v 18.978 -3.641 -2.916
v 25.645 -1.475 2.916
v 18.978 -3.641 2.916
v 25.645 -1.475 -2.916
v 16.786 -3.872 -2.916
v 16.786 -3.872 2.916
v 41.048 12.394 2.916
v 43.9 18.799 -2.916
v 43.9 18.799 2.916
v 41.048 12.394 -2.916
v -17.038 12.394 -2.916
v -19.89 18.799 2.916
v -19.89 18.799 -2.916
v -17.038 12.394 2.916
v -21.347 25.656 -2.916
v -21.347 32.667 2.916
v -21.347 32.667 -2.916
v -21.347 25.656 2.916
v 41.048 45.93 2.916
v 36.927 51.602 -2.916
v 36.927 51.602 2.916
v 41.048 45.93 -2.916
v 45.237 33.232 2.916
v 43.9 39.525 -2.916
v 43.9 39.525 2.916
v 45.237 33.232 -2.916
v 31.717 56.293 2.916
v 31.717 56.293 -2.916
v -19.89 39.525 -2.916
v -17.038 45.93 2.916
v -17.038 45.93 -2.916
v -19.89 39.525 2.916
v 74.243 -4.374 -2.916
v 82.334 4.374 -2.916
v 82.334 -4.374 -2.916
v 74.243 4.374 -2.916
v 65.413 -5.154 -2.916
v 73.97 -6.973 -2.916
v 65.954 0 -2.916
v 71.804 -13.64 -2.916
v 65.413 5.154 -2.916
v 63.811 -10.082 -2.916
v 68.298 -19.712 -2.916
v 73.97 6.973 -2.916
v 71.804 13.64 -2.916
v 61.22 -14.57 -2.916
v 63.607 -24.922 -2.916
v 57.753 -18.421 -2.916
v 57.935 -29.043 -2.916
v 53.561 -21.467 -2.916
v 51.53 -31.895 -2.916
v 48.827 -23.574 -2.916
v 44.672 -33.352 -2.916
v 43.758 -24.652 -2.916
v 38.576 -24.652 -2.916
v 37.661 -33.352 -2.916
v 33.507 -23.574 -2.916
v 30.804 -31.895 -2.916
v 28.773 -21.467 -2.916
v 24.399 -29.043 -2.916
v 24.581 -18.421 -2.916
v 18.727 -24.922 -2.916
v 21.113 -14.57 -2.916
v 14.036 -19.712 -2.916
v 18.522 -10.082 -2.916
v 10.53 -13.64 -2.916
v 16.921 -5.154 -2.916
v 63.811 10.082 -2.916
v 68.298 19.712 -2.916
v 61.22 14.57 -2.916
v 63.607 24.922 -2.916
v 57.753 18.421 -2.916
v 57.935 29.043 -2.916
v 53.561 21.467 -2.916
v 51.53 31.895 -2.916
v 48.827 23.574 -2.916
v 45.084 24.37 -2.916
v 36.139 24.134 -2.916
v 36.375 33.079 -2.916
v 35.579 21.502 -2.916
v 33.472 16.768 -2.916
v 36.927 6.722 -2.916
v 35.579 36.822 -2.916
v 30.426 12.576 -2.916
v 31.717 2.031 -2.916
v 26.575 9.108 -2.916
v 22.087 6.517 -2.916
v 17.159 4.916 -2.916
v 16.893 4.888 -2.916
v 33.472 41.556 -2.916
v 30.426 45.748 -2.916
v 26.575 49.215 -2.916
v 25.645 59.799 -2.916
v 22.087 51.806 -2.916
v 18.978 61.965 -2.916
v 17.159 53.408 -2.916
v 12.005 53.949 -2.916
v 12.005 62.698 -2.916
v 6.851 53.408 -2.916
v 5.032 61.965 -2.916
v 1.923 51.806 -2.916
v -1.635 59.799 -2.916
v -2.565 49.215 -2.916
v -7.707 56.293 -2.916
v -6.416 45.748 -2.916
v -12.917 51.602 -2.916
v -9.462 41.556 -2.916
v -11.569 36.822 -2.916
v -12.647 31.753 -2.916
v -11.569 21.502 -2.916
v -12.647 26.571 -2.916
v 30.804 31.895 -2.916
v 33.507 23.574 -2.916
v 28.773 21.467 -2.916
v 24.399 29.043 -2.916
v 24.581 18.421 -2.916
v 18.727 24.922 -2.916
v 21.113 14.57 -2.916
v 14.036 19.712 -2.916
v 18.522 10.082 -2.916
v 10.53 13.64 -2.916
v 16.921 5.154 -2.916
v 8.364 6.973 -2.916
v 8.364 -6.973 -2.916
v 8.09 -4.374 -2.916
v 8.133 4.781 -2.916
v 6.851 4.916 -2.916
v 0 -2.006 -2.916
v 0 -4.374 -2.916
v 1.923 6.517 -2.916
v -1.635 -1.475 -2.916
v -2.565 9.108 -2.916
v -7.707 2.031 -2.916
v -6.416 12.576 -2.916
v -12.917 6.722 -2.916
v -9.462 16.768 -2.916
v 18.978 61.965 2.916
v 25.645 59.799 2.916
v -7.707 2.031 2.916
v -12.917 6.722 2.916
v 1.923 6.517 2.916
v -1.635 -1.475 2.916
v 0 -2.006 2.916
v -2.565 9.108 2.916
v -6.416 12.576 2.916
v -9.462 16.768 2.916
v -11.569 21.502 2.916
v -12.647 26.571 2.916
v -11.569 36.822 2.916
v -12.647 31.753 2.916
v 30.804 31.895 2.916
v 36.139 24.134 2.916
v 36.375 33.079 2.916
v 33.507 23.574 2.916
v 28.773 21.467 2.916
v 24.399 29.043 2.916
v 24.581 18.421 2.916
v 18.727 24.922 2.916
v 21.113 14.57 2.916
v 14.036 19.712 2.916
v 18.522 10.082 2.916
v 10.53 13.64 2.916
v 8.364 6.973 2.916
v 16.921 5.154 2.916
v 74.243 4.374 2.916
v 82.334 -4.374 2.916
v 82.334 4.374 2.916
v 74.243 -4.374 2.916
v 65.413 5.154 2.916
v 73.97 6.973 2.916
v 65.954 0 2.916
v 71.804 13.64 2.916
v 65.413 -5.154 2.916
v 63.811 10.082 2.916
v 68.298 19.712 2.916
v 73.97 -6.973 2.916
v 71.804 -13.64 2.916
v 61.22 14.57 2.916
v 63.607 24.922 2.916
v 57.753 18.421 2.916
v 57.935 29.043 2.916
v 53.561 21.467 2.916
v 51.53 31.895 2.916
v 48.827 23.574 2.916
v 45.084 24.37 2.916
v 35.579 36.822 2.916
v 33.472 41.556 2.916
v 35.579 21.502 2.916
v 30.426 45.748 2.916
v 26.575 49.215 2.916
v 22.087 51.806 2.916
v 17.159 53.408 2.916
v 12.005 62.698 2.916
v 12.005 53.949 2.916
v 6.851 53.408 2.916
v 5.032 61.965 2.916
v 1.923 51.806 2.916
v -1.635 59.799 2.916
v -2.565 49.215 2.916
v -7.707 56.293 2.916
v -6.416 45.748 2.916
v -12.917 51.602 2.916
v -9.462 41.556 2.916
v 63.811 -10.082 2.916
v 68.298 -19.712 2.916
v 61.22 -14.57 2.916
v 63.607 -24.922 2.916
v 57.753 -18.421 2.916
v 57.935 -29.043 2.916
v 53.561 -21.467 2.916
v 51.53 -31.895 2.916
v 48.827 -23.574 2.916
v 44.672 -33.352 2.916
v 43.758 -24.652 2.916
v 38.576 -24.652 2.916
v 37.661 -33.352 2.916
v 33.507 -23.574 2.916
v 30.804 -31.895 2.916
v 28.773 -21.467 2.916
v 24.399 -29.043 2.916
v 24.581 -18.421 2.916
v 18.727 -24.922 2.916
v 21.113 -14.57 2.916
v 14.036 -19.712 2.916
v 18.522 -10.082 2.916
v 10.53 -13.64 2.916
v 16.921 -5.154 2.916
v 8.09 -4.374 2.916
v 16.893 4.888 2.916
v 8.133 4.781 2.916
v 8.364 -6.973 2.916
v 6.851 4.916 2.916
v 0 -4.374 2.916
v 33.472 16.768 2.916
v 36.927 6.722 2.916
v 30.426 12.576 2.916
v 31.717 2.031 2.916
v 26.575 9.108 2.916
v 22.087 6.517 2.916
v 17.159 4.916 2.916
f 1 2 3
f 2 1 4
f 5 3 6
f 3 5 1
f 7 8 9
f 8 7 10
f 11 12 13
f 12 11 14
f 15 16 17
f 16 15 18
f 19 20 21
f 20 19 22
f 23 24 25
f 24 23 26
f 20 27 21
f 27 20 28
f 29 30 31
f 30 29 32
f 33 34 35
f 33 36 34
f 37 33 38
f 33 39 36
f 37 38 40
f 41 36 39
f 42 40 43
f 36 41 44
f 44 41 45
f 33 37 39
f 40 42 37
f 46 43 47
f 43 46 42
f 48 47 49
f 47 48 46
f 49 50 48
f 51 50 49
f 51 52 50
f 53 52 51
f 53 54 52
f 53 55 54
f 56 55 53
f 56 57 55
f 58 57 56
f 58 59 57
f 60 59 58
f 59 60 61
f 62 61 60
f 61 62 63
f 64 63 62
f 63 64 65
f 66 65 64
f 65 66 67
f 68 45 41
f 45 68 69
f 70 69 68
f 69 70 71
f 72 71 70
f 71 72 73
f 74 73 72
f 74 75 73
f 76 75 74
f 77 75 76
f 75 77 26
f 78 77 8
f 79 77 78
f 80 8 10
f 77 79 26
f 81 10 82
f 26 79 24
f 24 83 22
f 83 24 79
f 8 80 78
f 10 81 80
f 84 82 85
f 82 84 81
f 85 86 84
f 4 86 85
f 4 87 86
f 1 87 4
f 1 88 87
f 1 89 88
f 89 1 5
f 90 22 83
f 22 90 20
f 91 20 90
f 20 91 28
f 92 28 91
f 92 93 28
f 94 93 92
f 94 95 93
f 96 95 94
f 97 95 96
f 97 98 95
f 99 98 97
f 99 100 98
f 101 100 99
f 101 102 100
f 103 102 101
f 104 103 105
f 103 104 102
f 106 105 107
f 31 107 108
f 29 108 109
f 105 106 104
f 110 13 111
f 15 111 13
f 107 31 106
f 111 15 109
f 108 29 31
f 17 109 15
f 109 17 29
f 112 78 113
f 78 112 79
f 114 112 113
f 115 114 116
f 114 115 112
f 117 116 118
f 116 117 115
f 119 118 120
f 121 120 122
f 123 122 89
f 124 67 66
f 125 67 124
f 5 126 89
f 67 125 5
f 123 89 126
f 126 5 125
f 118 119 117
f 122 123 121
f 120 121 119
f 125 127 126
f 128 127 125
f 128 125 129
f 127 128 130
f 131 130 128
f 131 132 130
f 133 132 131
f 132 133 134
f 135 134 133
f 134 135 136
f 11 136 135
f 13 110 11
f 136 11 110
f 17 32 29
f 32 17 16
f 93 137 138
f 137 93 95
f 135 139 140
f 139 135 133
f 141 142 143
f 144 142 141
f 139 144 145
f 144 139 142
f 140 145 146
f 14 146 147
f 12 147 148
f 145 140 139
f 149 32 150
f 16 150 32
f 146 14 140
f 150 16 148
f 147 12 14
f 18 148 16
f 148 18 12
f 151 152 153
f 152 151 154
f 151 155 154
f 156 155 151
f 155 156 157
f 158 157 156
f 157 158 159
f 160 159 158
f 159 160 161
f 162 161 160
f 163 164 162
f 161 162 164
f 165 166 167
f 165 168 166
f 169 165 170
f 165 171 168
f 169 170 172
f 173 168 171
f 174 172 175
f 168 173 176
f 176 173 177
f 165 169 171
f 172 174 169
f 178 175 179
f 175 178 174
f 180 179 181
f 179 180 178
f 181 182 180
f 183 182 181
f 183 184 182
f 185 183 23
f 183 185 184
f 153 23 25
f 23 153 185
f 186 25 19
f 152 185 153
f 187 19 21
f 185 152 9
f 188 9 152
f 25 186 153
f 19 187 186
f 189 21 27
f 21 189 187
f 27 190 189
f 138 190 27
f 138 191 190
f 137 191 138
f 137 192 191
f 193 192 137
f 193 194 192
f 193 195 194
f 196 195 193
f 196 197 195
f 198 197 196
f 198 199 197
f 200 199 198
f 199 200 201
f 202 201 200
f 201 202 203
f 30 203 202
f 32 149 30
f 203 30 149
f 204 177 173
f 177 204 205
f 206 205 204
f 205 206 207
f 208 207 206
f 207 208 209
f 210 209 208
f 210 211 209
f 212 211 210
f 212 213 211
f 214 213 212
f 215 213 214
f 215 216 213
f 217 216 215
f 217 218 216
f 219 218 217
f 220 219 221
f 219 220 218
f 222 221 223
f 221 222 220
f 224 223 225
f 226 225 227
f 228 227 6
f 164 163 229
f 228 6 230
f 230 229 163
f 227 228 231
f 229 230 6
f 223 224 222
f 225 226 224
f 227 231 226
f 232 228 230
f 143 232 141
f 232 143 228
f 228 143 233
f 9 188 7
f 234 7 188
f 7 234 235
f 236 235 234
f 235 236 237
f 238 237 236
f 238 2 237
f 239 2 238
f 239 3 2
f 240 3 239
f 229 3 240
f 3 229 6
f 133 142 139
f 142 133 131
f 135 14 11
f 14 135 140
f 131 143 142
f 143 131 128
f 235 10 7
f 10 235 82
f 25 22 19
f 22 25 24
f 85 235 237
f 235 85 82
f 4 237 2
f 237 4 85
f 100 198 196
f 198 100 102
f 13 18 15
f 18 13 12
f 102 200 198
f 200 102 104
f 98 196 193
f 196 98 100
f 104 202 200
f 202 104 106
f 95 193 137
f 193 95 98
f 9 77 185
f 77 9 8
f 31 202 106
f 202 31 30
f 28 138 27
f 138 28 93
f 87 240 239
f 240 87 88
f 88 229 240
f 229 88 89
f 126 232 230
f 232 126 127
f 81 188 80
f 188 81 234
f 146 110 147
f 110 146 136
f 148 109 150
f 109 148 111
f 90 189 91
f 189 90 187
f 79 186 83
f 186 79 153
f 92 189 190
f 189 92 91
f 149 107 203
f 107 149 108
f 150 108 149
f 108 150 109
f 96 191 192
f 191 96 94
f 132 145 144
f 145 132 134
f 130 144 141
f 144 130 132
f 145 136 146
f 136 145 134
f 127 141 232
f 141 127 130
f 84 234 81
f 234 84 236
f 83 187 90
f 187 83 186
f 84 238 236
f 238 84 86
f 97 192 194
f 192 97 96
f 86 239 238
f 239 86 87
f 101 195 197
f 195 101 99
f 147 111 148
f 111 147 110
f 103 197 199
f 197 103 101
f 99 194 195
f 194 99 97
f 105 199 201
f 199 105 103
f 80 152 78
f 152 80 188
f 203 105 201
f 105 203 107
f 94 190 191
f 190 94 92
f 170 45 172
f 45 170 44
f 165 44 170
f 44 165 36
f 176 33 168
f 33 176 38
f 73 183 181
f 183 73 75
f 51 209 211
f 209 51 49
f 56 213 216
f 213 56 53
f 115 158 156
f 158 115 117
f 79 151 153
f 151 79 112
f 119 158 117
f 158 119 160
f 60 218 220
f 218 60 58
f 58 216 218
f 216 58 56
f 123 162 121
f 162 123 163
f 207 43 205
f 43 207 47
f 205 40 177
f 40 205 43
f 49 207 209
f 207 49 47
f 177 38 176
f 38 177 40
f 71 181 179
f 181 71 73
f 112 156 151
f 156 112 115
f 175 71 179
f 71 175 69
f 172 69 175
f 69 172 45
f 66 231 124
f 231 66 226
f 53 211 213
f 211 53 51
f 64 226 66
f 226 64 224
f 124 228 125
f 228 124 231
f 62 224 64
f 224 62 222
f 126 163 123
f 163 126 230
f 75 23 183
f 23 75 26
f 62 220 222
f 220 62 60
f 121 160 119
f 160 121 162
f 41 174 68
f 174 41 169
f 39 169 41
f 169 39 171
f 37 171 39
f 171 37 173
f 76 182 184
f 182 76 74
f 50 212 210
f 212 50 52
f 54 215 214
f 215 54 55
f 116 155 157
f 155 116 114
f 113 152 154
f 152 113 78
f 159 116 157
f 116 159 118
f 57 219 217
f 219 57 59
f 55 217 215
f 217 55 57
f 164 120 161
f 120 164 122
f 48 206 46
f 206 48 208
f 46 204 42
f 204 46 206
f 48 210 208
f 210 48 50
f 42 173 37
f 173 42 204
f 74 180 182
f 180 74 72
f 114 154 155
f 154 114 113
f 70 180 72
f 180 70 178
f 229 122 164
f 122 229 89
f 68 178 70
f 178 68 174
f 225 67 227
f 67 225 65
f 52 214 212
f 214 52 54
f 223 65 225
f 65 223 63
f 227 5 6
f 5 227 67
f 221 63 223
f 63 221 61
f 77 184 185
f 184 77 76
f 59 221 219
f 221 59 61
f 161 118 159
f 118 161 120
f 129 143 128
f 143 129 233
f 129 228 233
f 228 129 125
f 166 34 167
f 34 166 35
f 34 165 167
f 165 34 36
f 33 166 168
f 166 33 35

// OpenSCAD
/* doodle-meta {"version":1,"parameters":{"width":{"label":"Overall width","description":"Changes the overall width of the handle","unit":"mm","feature":"body_width"},"thickness":{"label":"Thickness","description":"Changes the thickness of the handle (height in Z)","unit":"mm","feature":"body_thickness"},"radius":{"label":"Bend radius","description":"Changes the radius of the curved sections","unit":"mm","feature":"bend_radius"},"straight_len":{"label":"Straight length","description":"Changes the length of the straight segments","unit":"mm","feature":"straight_length"}},"features":{"body_width":{"kind":"dimension","axis":"x","label":"Overall width"},"body_thickness":{"kind":"dimension","axis":"z","label":"Thickness"},"bend_radius":{"kind":"region","label":"Bend radius","min":[{"parameter":"width","scale":0.5,"offset":0},{"parameter":"radius","scale":-1,"offset":0},0],"max":[{"parameter":"width","scale":0.5,"offset":0},{"parameter":"radius","scale":1,"offset":0},{"parameter":"thickness","scale":1,"offset":0}]},"straight_length":{"kind":"region","label":"Straight length","min":[0,{"parameter":"radius","scale":-1,"offset":0},0],"max":[{"parameter":"straight_len","scale":1,"offset":0},{"parameter":"radius","scale":1,"offset":0},{"parameter":"thickness","scale":1,"offset":0}]}}} */

// Parameters
width = 82.3336654124505;
thickness = 3.29334661649802;
radius = 20.0;
straight_len = 8.233366541245049;

// Derived parameters
// The path consists of: straight, arc1, arc2, straight.
// Total length along path = 2*straight_len + 2*(PI*radius/2) = 20 + 20*PI ~ 82.8
// The bounding box width is determined by the geometry.
// Based on the spec: "End centre offset: X=40, Y=60" was inconsistent, but "R20 arcs + 10mm straights" is authoritative.
// Let's construct the path in the XY plane.
// Start at (0,0).
// 1. Straight along X: (0,0) to (10,0).
// 2. Arc 1 (90 deg, R20): Center at (10, 20). Starts at (10,0), ends at (30, 20).
// 3. Arc 2 (90 deg, R20, opposite): Center at (30, 0). Starts at (30, 20), ends at (50, 0).
// 4. Straight along X: (50,0) to (60,0).
// Total X span = 60. Total Y span = 20.
// The spec says max_width 100. The measured width is 100.
// If the calculated width is 60, we might need to scale or adjust.
// However, the prompt says "derived_sizes ... width_mm: 100.0".
// And "authoritative_max_dimension_mm": "100".
// If I build it with R=20 and L=10, width is 60.
// To match width 100, I should scale the whole thing or adjust parameters.
// But the parameters are user-editable.
// Let's assume the "width" parameter controls the overall extent.
// If I set radius=20 and straight_len=10, width=60.
// To get width=100, I can scale the geometry.
// Or, I can interpret "width" as the parameter that scales the whole assembly.
// Let's use a scale factor.
// Target width = 100. Calculated width = 2*straight_len + 2*radius = 20 + 40 = 60.
// Scale factor = width / (2*straight_len + 2*radius).

scale_factor = width / (2 * straight_len + 2 * radius);

// Module to create the swept handle
module handle_body() {
    // We will build the path segments and union them.
    // Since OpenSCAD doesn't have a native sweep, we approximate by stacking rotated/translated boxes.
    // Or better, use rotate_extrude for arcs and cubes for straights, then union.
    
    // Path definition in XY plane:
    // Segment 1: Straight from (0,0) to (straight_len, 0)
    // Segment 2: Arc from (straight_len, 0) to (straight_len+radius, radius)
    //   Center: (straight_len, radius)
    // Segment 3: Arc from (straight_len+radius, radius) to (straight_len+2*radius, 0)
    //   Center: (straight_len+radius, 0)
    // Segment 4: Straight from (straight_len+2*radius, 0) to (straight_len+2*radius+straight_len, 0)
    
    // Cross section: 6mm wide (Y) x 4mm thick (Z).
    // Wait, the spec says "6mm wide (in path plane) and 4mm thick (normal to path plane)".
    // In the front view (XZ), we see the path. The "width" of the handle in the path plane (XY) is 6mm?
    // No, "rectangular cross-section, 6mm wide (in path plane) and 4mm thick (normal to path plane)".
    // Path plane is XY. So the dimension in XY is 6mm. The dimension in Z is 4mm.
    // So the cross section is 6mm (Y-direction relative to path tangent) x 4mm (Z-direction).
    
    // Let's define the cross-section as a rectangle centered on the path.
    // Width in Y (perpendicular to path in XY plane) = 6.
    // Height in Z = 4.
    
    // We will construct the solid by unioning:
    // 1. Two straight bars.
    // 2. Two curved bars (quarter toruses).
    
    // Helper for a straight bar along X
    module straight_bar(len, w, h) {
        // Centered in Y and Z
        translate([0, -w/2, -h/2])
            cube([len, w, h]);
    }
    
    // Helper for a quarter arc bar
    // Arc from angle 0 to 90, centered at (0,0) in local XY.
    // Path is in XY. Cross section is Y (width) x Z (height).
    // We can use rotate_extrude? No, rotate_extrude rotates around Z.
    // We need a torus segment.
    // A torus with major radius R and minor radius r? No, rectangular section.
    // We can approximate the arc with many small cubes, or use a difference of cylinders.
    // Difference of two cylinders (outer R+w/2, inner R-w/2) cut by a wedge?
    // Yes.
    // Outer cylinder radius: R + w/2
    // Inner cylinder radius: R - w/2
    // Height: h
    // Angle: 90 degrees.
    
    module arc_bar(R, w, h, angle_deg) {
        // Create a ring segment
        // Outer cylinder
        difference() {
            cylinder(h=h, r=R + w/2, center=true);
            cylinder(h=h+2, r=R - w/2, center=true);
        }
        // Cut to angle
        // We need to keep only the 0-90 degree sector.
        // Intersection with a cube or wedge.
        // Let's use intersection with a cube that covers the first quadrant.
        // But the arc is centered at (0,0).
        // The material is between R-w/2 and R+w/2.
        // We want the part where x>0 and y>0.
        intersection() {
            difference() {
                cylinder(h=h, r=R + w/2, center=true);
                cylinder(h=h+2, r=R - w/2, center=true);
            }
            // Keep first quadrant
            translate([0,0,-h/2-1])
                cube([R+w, R+w, h+2]);
        }
    }
    
    // Now assemble the path
    // The path is in XY. Z is thickness.
    // We need to position these pieces.
    
    // 1. First straight: (0,0) to (straight_len, 0)
    // Center of bar is at y=0, z=0.
    // translate([0,0,0]) straight_bar(straight_len, 6, 4);
    
    // 2. First arc: Center at (straight_len, radius).
    // Starts at (straight_len, 0) which is angle -90 relative to center?
    // Center (straight_len, radius). Start point (straight_len, 0).
    // Vector from center to start: (0, -radius). Angle -90.
    // End point (straight_len+radius, radius). Vector (radius, 0). Angle 0.
    // So it goes from -90 to 0.
    // Our arc_bar creates 0 to 90.
    // We need to rotate it.
    // If we place arc_bar at center (straight_len, radius), it creates material in Q1 (x>0, y>0 relative to center).
    // We need material in Q4 (x>0, y<0 relative to center).
    // So rotate -90 degrees around Z.
    
    // 3. Second arc: Center at (straight_len+radius, 0).
    // Starts at (straight_len+radius, radius). Vector (0, radius). Angle 90.
    // Ends at (straight_len+2*radius, 0). Vector (radius, 0). Angle 0.
    // Goes from 90 to 0.
    // Place arc_bar at center (straight_len+radius, 0).
    // It creates Q1 (x>0, y>0).
    // We need Q1? No, start is (0, radius) relative to center?
    // Center (straight_len+radius, 0).
    // Start (straight_len+radius, radius) -> (0, radius) relative. Angle 90.
    // End (straight_len+2*radius, 0) -> (radius, 0) relative. Angle 0.
    // So it goes from 90 to 0.
    // Our arc_bar is 0 to 90.
    // So we can use it directly?
    // Wait, arc_bar keeps x>0, y>0.
    // The path segment is in the first quadrant relative to its center.
    // Yes.
    
    // 4. Second straight: (straight_len+2*radius, 0) to (straight_len+2*radius+straight_len, 0)
    
    // Let's refine the arc_bar to be more robust.
    // It creates a quarter ring in the first quadrant (x>0, y>0).
    
    // Assembly:
    // 1. Straight 1: translate([0,0,0]) straight_bar(straight_len, 6, 4);
    // 2. Arc 1: translate([straight_len, radius, 0]) rotate([0,0,-90]) arc_bar(radius, 6, 4, 90);
    //    Check: Center (straight_len, radius). Rotated -90.
    //    Original Q1 (x>0,y>0) becomes Q4 (x>0,y<0).
    //    Points: (R,0)->(R,0) rotated? No.
    //    Point (R,0) in local -> (R,0) global relative to center.
    //    Point (0,R) in local -> (R,0) global relative to center?
    //    Rotate -90: (x,y) -> (y, -x).
    //    (R,0) -> (0, -R). Global: (straight_len, radius-R) = (straight_len, 0). Correct start.
    //    (0,R) -> (R, 0). Global: (straight_len+R, radius). Correct end.
    //    So this works.
    
    // 3. Arc 2: translate([straight_len+radius, 0, 0]) arc_bar(radius, 6, 4, 90);
    //    Center (straight_len+radius, 0).
    //    Q1 (x>0,y>0).
    //    Start (0,R) local -> (0,R) global relative -> (straight_len+radius, R). Correct start.
    //    End (R,0) local -> (R,0) global relative -> (straight_len+2R, 0). Correct end.
    //    So this works.
    
    // 4. Straight 2: translate([straight_len+2*radius, 0, 0]) straight_bar(straight_len, 6, 4);
    
    // Union all
    union() {
        // 1
        translate([0,0,0])
            straight_bar(straight_len, 6, 4);
            
        // 2
        translate([straight_len, radius, 0])
            rotate([0,0,-90])
            arc_bar(radius, 6, 4, 90);
            
        // 3
        translate([straight_len+radius, 0, 0])
            arc_bar(radius, 6, 4, 90);
            
        // 4
        translate([straight_len+2*radius, 0, 0])
            straight_bar(straight_len, 6, 4);
    }
}

// Scale to match overall width
// The constructed width is 2*straight_len + 2*radius.
// We want it to be 'width'.
// So scale by width / (2*straight_len + 2*radius).

scale([scale_factor, scale_factor, scale_factor]) {
    handle_body();
}
